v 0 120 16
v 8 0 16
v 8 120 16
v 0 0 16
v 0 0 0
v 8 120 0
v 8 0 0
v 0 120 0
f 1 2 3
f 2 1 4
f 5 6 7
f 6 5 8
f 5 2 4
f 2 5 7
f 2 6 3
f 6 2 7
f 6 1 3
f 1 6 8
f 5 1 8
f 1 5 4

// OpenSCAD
// ipad dimensions. the wrapper will be bigger than this so it slides in.
height = 120;

// how big the frame itself will be
border_size = 8;

cube([border_size, height, border_size * 2]);
